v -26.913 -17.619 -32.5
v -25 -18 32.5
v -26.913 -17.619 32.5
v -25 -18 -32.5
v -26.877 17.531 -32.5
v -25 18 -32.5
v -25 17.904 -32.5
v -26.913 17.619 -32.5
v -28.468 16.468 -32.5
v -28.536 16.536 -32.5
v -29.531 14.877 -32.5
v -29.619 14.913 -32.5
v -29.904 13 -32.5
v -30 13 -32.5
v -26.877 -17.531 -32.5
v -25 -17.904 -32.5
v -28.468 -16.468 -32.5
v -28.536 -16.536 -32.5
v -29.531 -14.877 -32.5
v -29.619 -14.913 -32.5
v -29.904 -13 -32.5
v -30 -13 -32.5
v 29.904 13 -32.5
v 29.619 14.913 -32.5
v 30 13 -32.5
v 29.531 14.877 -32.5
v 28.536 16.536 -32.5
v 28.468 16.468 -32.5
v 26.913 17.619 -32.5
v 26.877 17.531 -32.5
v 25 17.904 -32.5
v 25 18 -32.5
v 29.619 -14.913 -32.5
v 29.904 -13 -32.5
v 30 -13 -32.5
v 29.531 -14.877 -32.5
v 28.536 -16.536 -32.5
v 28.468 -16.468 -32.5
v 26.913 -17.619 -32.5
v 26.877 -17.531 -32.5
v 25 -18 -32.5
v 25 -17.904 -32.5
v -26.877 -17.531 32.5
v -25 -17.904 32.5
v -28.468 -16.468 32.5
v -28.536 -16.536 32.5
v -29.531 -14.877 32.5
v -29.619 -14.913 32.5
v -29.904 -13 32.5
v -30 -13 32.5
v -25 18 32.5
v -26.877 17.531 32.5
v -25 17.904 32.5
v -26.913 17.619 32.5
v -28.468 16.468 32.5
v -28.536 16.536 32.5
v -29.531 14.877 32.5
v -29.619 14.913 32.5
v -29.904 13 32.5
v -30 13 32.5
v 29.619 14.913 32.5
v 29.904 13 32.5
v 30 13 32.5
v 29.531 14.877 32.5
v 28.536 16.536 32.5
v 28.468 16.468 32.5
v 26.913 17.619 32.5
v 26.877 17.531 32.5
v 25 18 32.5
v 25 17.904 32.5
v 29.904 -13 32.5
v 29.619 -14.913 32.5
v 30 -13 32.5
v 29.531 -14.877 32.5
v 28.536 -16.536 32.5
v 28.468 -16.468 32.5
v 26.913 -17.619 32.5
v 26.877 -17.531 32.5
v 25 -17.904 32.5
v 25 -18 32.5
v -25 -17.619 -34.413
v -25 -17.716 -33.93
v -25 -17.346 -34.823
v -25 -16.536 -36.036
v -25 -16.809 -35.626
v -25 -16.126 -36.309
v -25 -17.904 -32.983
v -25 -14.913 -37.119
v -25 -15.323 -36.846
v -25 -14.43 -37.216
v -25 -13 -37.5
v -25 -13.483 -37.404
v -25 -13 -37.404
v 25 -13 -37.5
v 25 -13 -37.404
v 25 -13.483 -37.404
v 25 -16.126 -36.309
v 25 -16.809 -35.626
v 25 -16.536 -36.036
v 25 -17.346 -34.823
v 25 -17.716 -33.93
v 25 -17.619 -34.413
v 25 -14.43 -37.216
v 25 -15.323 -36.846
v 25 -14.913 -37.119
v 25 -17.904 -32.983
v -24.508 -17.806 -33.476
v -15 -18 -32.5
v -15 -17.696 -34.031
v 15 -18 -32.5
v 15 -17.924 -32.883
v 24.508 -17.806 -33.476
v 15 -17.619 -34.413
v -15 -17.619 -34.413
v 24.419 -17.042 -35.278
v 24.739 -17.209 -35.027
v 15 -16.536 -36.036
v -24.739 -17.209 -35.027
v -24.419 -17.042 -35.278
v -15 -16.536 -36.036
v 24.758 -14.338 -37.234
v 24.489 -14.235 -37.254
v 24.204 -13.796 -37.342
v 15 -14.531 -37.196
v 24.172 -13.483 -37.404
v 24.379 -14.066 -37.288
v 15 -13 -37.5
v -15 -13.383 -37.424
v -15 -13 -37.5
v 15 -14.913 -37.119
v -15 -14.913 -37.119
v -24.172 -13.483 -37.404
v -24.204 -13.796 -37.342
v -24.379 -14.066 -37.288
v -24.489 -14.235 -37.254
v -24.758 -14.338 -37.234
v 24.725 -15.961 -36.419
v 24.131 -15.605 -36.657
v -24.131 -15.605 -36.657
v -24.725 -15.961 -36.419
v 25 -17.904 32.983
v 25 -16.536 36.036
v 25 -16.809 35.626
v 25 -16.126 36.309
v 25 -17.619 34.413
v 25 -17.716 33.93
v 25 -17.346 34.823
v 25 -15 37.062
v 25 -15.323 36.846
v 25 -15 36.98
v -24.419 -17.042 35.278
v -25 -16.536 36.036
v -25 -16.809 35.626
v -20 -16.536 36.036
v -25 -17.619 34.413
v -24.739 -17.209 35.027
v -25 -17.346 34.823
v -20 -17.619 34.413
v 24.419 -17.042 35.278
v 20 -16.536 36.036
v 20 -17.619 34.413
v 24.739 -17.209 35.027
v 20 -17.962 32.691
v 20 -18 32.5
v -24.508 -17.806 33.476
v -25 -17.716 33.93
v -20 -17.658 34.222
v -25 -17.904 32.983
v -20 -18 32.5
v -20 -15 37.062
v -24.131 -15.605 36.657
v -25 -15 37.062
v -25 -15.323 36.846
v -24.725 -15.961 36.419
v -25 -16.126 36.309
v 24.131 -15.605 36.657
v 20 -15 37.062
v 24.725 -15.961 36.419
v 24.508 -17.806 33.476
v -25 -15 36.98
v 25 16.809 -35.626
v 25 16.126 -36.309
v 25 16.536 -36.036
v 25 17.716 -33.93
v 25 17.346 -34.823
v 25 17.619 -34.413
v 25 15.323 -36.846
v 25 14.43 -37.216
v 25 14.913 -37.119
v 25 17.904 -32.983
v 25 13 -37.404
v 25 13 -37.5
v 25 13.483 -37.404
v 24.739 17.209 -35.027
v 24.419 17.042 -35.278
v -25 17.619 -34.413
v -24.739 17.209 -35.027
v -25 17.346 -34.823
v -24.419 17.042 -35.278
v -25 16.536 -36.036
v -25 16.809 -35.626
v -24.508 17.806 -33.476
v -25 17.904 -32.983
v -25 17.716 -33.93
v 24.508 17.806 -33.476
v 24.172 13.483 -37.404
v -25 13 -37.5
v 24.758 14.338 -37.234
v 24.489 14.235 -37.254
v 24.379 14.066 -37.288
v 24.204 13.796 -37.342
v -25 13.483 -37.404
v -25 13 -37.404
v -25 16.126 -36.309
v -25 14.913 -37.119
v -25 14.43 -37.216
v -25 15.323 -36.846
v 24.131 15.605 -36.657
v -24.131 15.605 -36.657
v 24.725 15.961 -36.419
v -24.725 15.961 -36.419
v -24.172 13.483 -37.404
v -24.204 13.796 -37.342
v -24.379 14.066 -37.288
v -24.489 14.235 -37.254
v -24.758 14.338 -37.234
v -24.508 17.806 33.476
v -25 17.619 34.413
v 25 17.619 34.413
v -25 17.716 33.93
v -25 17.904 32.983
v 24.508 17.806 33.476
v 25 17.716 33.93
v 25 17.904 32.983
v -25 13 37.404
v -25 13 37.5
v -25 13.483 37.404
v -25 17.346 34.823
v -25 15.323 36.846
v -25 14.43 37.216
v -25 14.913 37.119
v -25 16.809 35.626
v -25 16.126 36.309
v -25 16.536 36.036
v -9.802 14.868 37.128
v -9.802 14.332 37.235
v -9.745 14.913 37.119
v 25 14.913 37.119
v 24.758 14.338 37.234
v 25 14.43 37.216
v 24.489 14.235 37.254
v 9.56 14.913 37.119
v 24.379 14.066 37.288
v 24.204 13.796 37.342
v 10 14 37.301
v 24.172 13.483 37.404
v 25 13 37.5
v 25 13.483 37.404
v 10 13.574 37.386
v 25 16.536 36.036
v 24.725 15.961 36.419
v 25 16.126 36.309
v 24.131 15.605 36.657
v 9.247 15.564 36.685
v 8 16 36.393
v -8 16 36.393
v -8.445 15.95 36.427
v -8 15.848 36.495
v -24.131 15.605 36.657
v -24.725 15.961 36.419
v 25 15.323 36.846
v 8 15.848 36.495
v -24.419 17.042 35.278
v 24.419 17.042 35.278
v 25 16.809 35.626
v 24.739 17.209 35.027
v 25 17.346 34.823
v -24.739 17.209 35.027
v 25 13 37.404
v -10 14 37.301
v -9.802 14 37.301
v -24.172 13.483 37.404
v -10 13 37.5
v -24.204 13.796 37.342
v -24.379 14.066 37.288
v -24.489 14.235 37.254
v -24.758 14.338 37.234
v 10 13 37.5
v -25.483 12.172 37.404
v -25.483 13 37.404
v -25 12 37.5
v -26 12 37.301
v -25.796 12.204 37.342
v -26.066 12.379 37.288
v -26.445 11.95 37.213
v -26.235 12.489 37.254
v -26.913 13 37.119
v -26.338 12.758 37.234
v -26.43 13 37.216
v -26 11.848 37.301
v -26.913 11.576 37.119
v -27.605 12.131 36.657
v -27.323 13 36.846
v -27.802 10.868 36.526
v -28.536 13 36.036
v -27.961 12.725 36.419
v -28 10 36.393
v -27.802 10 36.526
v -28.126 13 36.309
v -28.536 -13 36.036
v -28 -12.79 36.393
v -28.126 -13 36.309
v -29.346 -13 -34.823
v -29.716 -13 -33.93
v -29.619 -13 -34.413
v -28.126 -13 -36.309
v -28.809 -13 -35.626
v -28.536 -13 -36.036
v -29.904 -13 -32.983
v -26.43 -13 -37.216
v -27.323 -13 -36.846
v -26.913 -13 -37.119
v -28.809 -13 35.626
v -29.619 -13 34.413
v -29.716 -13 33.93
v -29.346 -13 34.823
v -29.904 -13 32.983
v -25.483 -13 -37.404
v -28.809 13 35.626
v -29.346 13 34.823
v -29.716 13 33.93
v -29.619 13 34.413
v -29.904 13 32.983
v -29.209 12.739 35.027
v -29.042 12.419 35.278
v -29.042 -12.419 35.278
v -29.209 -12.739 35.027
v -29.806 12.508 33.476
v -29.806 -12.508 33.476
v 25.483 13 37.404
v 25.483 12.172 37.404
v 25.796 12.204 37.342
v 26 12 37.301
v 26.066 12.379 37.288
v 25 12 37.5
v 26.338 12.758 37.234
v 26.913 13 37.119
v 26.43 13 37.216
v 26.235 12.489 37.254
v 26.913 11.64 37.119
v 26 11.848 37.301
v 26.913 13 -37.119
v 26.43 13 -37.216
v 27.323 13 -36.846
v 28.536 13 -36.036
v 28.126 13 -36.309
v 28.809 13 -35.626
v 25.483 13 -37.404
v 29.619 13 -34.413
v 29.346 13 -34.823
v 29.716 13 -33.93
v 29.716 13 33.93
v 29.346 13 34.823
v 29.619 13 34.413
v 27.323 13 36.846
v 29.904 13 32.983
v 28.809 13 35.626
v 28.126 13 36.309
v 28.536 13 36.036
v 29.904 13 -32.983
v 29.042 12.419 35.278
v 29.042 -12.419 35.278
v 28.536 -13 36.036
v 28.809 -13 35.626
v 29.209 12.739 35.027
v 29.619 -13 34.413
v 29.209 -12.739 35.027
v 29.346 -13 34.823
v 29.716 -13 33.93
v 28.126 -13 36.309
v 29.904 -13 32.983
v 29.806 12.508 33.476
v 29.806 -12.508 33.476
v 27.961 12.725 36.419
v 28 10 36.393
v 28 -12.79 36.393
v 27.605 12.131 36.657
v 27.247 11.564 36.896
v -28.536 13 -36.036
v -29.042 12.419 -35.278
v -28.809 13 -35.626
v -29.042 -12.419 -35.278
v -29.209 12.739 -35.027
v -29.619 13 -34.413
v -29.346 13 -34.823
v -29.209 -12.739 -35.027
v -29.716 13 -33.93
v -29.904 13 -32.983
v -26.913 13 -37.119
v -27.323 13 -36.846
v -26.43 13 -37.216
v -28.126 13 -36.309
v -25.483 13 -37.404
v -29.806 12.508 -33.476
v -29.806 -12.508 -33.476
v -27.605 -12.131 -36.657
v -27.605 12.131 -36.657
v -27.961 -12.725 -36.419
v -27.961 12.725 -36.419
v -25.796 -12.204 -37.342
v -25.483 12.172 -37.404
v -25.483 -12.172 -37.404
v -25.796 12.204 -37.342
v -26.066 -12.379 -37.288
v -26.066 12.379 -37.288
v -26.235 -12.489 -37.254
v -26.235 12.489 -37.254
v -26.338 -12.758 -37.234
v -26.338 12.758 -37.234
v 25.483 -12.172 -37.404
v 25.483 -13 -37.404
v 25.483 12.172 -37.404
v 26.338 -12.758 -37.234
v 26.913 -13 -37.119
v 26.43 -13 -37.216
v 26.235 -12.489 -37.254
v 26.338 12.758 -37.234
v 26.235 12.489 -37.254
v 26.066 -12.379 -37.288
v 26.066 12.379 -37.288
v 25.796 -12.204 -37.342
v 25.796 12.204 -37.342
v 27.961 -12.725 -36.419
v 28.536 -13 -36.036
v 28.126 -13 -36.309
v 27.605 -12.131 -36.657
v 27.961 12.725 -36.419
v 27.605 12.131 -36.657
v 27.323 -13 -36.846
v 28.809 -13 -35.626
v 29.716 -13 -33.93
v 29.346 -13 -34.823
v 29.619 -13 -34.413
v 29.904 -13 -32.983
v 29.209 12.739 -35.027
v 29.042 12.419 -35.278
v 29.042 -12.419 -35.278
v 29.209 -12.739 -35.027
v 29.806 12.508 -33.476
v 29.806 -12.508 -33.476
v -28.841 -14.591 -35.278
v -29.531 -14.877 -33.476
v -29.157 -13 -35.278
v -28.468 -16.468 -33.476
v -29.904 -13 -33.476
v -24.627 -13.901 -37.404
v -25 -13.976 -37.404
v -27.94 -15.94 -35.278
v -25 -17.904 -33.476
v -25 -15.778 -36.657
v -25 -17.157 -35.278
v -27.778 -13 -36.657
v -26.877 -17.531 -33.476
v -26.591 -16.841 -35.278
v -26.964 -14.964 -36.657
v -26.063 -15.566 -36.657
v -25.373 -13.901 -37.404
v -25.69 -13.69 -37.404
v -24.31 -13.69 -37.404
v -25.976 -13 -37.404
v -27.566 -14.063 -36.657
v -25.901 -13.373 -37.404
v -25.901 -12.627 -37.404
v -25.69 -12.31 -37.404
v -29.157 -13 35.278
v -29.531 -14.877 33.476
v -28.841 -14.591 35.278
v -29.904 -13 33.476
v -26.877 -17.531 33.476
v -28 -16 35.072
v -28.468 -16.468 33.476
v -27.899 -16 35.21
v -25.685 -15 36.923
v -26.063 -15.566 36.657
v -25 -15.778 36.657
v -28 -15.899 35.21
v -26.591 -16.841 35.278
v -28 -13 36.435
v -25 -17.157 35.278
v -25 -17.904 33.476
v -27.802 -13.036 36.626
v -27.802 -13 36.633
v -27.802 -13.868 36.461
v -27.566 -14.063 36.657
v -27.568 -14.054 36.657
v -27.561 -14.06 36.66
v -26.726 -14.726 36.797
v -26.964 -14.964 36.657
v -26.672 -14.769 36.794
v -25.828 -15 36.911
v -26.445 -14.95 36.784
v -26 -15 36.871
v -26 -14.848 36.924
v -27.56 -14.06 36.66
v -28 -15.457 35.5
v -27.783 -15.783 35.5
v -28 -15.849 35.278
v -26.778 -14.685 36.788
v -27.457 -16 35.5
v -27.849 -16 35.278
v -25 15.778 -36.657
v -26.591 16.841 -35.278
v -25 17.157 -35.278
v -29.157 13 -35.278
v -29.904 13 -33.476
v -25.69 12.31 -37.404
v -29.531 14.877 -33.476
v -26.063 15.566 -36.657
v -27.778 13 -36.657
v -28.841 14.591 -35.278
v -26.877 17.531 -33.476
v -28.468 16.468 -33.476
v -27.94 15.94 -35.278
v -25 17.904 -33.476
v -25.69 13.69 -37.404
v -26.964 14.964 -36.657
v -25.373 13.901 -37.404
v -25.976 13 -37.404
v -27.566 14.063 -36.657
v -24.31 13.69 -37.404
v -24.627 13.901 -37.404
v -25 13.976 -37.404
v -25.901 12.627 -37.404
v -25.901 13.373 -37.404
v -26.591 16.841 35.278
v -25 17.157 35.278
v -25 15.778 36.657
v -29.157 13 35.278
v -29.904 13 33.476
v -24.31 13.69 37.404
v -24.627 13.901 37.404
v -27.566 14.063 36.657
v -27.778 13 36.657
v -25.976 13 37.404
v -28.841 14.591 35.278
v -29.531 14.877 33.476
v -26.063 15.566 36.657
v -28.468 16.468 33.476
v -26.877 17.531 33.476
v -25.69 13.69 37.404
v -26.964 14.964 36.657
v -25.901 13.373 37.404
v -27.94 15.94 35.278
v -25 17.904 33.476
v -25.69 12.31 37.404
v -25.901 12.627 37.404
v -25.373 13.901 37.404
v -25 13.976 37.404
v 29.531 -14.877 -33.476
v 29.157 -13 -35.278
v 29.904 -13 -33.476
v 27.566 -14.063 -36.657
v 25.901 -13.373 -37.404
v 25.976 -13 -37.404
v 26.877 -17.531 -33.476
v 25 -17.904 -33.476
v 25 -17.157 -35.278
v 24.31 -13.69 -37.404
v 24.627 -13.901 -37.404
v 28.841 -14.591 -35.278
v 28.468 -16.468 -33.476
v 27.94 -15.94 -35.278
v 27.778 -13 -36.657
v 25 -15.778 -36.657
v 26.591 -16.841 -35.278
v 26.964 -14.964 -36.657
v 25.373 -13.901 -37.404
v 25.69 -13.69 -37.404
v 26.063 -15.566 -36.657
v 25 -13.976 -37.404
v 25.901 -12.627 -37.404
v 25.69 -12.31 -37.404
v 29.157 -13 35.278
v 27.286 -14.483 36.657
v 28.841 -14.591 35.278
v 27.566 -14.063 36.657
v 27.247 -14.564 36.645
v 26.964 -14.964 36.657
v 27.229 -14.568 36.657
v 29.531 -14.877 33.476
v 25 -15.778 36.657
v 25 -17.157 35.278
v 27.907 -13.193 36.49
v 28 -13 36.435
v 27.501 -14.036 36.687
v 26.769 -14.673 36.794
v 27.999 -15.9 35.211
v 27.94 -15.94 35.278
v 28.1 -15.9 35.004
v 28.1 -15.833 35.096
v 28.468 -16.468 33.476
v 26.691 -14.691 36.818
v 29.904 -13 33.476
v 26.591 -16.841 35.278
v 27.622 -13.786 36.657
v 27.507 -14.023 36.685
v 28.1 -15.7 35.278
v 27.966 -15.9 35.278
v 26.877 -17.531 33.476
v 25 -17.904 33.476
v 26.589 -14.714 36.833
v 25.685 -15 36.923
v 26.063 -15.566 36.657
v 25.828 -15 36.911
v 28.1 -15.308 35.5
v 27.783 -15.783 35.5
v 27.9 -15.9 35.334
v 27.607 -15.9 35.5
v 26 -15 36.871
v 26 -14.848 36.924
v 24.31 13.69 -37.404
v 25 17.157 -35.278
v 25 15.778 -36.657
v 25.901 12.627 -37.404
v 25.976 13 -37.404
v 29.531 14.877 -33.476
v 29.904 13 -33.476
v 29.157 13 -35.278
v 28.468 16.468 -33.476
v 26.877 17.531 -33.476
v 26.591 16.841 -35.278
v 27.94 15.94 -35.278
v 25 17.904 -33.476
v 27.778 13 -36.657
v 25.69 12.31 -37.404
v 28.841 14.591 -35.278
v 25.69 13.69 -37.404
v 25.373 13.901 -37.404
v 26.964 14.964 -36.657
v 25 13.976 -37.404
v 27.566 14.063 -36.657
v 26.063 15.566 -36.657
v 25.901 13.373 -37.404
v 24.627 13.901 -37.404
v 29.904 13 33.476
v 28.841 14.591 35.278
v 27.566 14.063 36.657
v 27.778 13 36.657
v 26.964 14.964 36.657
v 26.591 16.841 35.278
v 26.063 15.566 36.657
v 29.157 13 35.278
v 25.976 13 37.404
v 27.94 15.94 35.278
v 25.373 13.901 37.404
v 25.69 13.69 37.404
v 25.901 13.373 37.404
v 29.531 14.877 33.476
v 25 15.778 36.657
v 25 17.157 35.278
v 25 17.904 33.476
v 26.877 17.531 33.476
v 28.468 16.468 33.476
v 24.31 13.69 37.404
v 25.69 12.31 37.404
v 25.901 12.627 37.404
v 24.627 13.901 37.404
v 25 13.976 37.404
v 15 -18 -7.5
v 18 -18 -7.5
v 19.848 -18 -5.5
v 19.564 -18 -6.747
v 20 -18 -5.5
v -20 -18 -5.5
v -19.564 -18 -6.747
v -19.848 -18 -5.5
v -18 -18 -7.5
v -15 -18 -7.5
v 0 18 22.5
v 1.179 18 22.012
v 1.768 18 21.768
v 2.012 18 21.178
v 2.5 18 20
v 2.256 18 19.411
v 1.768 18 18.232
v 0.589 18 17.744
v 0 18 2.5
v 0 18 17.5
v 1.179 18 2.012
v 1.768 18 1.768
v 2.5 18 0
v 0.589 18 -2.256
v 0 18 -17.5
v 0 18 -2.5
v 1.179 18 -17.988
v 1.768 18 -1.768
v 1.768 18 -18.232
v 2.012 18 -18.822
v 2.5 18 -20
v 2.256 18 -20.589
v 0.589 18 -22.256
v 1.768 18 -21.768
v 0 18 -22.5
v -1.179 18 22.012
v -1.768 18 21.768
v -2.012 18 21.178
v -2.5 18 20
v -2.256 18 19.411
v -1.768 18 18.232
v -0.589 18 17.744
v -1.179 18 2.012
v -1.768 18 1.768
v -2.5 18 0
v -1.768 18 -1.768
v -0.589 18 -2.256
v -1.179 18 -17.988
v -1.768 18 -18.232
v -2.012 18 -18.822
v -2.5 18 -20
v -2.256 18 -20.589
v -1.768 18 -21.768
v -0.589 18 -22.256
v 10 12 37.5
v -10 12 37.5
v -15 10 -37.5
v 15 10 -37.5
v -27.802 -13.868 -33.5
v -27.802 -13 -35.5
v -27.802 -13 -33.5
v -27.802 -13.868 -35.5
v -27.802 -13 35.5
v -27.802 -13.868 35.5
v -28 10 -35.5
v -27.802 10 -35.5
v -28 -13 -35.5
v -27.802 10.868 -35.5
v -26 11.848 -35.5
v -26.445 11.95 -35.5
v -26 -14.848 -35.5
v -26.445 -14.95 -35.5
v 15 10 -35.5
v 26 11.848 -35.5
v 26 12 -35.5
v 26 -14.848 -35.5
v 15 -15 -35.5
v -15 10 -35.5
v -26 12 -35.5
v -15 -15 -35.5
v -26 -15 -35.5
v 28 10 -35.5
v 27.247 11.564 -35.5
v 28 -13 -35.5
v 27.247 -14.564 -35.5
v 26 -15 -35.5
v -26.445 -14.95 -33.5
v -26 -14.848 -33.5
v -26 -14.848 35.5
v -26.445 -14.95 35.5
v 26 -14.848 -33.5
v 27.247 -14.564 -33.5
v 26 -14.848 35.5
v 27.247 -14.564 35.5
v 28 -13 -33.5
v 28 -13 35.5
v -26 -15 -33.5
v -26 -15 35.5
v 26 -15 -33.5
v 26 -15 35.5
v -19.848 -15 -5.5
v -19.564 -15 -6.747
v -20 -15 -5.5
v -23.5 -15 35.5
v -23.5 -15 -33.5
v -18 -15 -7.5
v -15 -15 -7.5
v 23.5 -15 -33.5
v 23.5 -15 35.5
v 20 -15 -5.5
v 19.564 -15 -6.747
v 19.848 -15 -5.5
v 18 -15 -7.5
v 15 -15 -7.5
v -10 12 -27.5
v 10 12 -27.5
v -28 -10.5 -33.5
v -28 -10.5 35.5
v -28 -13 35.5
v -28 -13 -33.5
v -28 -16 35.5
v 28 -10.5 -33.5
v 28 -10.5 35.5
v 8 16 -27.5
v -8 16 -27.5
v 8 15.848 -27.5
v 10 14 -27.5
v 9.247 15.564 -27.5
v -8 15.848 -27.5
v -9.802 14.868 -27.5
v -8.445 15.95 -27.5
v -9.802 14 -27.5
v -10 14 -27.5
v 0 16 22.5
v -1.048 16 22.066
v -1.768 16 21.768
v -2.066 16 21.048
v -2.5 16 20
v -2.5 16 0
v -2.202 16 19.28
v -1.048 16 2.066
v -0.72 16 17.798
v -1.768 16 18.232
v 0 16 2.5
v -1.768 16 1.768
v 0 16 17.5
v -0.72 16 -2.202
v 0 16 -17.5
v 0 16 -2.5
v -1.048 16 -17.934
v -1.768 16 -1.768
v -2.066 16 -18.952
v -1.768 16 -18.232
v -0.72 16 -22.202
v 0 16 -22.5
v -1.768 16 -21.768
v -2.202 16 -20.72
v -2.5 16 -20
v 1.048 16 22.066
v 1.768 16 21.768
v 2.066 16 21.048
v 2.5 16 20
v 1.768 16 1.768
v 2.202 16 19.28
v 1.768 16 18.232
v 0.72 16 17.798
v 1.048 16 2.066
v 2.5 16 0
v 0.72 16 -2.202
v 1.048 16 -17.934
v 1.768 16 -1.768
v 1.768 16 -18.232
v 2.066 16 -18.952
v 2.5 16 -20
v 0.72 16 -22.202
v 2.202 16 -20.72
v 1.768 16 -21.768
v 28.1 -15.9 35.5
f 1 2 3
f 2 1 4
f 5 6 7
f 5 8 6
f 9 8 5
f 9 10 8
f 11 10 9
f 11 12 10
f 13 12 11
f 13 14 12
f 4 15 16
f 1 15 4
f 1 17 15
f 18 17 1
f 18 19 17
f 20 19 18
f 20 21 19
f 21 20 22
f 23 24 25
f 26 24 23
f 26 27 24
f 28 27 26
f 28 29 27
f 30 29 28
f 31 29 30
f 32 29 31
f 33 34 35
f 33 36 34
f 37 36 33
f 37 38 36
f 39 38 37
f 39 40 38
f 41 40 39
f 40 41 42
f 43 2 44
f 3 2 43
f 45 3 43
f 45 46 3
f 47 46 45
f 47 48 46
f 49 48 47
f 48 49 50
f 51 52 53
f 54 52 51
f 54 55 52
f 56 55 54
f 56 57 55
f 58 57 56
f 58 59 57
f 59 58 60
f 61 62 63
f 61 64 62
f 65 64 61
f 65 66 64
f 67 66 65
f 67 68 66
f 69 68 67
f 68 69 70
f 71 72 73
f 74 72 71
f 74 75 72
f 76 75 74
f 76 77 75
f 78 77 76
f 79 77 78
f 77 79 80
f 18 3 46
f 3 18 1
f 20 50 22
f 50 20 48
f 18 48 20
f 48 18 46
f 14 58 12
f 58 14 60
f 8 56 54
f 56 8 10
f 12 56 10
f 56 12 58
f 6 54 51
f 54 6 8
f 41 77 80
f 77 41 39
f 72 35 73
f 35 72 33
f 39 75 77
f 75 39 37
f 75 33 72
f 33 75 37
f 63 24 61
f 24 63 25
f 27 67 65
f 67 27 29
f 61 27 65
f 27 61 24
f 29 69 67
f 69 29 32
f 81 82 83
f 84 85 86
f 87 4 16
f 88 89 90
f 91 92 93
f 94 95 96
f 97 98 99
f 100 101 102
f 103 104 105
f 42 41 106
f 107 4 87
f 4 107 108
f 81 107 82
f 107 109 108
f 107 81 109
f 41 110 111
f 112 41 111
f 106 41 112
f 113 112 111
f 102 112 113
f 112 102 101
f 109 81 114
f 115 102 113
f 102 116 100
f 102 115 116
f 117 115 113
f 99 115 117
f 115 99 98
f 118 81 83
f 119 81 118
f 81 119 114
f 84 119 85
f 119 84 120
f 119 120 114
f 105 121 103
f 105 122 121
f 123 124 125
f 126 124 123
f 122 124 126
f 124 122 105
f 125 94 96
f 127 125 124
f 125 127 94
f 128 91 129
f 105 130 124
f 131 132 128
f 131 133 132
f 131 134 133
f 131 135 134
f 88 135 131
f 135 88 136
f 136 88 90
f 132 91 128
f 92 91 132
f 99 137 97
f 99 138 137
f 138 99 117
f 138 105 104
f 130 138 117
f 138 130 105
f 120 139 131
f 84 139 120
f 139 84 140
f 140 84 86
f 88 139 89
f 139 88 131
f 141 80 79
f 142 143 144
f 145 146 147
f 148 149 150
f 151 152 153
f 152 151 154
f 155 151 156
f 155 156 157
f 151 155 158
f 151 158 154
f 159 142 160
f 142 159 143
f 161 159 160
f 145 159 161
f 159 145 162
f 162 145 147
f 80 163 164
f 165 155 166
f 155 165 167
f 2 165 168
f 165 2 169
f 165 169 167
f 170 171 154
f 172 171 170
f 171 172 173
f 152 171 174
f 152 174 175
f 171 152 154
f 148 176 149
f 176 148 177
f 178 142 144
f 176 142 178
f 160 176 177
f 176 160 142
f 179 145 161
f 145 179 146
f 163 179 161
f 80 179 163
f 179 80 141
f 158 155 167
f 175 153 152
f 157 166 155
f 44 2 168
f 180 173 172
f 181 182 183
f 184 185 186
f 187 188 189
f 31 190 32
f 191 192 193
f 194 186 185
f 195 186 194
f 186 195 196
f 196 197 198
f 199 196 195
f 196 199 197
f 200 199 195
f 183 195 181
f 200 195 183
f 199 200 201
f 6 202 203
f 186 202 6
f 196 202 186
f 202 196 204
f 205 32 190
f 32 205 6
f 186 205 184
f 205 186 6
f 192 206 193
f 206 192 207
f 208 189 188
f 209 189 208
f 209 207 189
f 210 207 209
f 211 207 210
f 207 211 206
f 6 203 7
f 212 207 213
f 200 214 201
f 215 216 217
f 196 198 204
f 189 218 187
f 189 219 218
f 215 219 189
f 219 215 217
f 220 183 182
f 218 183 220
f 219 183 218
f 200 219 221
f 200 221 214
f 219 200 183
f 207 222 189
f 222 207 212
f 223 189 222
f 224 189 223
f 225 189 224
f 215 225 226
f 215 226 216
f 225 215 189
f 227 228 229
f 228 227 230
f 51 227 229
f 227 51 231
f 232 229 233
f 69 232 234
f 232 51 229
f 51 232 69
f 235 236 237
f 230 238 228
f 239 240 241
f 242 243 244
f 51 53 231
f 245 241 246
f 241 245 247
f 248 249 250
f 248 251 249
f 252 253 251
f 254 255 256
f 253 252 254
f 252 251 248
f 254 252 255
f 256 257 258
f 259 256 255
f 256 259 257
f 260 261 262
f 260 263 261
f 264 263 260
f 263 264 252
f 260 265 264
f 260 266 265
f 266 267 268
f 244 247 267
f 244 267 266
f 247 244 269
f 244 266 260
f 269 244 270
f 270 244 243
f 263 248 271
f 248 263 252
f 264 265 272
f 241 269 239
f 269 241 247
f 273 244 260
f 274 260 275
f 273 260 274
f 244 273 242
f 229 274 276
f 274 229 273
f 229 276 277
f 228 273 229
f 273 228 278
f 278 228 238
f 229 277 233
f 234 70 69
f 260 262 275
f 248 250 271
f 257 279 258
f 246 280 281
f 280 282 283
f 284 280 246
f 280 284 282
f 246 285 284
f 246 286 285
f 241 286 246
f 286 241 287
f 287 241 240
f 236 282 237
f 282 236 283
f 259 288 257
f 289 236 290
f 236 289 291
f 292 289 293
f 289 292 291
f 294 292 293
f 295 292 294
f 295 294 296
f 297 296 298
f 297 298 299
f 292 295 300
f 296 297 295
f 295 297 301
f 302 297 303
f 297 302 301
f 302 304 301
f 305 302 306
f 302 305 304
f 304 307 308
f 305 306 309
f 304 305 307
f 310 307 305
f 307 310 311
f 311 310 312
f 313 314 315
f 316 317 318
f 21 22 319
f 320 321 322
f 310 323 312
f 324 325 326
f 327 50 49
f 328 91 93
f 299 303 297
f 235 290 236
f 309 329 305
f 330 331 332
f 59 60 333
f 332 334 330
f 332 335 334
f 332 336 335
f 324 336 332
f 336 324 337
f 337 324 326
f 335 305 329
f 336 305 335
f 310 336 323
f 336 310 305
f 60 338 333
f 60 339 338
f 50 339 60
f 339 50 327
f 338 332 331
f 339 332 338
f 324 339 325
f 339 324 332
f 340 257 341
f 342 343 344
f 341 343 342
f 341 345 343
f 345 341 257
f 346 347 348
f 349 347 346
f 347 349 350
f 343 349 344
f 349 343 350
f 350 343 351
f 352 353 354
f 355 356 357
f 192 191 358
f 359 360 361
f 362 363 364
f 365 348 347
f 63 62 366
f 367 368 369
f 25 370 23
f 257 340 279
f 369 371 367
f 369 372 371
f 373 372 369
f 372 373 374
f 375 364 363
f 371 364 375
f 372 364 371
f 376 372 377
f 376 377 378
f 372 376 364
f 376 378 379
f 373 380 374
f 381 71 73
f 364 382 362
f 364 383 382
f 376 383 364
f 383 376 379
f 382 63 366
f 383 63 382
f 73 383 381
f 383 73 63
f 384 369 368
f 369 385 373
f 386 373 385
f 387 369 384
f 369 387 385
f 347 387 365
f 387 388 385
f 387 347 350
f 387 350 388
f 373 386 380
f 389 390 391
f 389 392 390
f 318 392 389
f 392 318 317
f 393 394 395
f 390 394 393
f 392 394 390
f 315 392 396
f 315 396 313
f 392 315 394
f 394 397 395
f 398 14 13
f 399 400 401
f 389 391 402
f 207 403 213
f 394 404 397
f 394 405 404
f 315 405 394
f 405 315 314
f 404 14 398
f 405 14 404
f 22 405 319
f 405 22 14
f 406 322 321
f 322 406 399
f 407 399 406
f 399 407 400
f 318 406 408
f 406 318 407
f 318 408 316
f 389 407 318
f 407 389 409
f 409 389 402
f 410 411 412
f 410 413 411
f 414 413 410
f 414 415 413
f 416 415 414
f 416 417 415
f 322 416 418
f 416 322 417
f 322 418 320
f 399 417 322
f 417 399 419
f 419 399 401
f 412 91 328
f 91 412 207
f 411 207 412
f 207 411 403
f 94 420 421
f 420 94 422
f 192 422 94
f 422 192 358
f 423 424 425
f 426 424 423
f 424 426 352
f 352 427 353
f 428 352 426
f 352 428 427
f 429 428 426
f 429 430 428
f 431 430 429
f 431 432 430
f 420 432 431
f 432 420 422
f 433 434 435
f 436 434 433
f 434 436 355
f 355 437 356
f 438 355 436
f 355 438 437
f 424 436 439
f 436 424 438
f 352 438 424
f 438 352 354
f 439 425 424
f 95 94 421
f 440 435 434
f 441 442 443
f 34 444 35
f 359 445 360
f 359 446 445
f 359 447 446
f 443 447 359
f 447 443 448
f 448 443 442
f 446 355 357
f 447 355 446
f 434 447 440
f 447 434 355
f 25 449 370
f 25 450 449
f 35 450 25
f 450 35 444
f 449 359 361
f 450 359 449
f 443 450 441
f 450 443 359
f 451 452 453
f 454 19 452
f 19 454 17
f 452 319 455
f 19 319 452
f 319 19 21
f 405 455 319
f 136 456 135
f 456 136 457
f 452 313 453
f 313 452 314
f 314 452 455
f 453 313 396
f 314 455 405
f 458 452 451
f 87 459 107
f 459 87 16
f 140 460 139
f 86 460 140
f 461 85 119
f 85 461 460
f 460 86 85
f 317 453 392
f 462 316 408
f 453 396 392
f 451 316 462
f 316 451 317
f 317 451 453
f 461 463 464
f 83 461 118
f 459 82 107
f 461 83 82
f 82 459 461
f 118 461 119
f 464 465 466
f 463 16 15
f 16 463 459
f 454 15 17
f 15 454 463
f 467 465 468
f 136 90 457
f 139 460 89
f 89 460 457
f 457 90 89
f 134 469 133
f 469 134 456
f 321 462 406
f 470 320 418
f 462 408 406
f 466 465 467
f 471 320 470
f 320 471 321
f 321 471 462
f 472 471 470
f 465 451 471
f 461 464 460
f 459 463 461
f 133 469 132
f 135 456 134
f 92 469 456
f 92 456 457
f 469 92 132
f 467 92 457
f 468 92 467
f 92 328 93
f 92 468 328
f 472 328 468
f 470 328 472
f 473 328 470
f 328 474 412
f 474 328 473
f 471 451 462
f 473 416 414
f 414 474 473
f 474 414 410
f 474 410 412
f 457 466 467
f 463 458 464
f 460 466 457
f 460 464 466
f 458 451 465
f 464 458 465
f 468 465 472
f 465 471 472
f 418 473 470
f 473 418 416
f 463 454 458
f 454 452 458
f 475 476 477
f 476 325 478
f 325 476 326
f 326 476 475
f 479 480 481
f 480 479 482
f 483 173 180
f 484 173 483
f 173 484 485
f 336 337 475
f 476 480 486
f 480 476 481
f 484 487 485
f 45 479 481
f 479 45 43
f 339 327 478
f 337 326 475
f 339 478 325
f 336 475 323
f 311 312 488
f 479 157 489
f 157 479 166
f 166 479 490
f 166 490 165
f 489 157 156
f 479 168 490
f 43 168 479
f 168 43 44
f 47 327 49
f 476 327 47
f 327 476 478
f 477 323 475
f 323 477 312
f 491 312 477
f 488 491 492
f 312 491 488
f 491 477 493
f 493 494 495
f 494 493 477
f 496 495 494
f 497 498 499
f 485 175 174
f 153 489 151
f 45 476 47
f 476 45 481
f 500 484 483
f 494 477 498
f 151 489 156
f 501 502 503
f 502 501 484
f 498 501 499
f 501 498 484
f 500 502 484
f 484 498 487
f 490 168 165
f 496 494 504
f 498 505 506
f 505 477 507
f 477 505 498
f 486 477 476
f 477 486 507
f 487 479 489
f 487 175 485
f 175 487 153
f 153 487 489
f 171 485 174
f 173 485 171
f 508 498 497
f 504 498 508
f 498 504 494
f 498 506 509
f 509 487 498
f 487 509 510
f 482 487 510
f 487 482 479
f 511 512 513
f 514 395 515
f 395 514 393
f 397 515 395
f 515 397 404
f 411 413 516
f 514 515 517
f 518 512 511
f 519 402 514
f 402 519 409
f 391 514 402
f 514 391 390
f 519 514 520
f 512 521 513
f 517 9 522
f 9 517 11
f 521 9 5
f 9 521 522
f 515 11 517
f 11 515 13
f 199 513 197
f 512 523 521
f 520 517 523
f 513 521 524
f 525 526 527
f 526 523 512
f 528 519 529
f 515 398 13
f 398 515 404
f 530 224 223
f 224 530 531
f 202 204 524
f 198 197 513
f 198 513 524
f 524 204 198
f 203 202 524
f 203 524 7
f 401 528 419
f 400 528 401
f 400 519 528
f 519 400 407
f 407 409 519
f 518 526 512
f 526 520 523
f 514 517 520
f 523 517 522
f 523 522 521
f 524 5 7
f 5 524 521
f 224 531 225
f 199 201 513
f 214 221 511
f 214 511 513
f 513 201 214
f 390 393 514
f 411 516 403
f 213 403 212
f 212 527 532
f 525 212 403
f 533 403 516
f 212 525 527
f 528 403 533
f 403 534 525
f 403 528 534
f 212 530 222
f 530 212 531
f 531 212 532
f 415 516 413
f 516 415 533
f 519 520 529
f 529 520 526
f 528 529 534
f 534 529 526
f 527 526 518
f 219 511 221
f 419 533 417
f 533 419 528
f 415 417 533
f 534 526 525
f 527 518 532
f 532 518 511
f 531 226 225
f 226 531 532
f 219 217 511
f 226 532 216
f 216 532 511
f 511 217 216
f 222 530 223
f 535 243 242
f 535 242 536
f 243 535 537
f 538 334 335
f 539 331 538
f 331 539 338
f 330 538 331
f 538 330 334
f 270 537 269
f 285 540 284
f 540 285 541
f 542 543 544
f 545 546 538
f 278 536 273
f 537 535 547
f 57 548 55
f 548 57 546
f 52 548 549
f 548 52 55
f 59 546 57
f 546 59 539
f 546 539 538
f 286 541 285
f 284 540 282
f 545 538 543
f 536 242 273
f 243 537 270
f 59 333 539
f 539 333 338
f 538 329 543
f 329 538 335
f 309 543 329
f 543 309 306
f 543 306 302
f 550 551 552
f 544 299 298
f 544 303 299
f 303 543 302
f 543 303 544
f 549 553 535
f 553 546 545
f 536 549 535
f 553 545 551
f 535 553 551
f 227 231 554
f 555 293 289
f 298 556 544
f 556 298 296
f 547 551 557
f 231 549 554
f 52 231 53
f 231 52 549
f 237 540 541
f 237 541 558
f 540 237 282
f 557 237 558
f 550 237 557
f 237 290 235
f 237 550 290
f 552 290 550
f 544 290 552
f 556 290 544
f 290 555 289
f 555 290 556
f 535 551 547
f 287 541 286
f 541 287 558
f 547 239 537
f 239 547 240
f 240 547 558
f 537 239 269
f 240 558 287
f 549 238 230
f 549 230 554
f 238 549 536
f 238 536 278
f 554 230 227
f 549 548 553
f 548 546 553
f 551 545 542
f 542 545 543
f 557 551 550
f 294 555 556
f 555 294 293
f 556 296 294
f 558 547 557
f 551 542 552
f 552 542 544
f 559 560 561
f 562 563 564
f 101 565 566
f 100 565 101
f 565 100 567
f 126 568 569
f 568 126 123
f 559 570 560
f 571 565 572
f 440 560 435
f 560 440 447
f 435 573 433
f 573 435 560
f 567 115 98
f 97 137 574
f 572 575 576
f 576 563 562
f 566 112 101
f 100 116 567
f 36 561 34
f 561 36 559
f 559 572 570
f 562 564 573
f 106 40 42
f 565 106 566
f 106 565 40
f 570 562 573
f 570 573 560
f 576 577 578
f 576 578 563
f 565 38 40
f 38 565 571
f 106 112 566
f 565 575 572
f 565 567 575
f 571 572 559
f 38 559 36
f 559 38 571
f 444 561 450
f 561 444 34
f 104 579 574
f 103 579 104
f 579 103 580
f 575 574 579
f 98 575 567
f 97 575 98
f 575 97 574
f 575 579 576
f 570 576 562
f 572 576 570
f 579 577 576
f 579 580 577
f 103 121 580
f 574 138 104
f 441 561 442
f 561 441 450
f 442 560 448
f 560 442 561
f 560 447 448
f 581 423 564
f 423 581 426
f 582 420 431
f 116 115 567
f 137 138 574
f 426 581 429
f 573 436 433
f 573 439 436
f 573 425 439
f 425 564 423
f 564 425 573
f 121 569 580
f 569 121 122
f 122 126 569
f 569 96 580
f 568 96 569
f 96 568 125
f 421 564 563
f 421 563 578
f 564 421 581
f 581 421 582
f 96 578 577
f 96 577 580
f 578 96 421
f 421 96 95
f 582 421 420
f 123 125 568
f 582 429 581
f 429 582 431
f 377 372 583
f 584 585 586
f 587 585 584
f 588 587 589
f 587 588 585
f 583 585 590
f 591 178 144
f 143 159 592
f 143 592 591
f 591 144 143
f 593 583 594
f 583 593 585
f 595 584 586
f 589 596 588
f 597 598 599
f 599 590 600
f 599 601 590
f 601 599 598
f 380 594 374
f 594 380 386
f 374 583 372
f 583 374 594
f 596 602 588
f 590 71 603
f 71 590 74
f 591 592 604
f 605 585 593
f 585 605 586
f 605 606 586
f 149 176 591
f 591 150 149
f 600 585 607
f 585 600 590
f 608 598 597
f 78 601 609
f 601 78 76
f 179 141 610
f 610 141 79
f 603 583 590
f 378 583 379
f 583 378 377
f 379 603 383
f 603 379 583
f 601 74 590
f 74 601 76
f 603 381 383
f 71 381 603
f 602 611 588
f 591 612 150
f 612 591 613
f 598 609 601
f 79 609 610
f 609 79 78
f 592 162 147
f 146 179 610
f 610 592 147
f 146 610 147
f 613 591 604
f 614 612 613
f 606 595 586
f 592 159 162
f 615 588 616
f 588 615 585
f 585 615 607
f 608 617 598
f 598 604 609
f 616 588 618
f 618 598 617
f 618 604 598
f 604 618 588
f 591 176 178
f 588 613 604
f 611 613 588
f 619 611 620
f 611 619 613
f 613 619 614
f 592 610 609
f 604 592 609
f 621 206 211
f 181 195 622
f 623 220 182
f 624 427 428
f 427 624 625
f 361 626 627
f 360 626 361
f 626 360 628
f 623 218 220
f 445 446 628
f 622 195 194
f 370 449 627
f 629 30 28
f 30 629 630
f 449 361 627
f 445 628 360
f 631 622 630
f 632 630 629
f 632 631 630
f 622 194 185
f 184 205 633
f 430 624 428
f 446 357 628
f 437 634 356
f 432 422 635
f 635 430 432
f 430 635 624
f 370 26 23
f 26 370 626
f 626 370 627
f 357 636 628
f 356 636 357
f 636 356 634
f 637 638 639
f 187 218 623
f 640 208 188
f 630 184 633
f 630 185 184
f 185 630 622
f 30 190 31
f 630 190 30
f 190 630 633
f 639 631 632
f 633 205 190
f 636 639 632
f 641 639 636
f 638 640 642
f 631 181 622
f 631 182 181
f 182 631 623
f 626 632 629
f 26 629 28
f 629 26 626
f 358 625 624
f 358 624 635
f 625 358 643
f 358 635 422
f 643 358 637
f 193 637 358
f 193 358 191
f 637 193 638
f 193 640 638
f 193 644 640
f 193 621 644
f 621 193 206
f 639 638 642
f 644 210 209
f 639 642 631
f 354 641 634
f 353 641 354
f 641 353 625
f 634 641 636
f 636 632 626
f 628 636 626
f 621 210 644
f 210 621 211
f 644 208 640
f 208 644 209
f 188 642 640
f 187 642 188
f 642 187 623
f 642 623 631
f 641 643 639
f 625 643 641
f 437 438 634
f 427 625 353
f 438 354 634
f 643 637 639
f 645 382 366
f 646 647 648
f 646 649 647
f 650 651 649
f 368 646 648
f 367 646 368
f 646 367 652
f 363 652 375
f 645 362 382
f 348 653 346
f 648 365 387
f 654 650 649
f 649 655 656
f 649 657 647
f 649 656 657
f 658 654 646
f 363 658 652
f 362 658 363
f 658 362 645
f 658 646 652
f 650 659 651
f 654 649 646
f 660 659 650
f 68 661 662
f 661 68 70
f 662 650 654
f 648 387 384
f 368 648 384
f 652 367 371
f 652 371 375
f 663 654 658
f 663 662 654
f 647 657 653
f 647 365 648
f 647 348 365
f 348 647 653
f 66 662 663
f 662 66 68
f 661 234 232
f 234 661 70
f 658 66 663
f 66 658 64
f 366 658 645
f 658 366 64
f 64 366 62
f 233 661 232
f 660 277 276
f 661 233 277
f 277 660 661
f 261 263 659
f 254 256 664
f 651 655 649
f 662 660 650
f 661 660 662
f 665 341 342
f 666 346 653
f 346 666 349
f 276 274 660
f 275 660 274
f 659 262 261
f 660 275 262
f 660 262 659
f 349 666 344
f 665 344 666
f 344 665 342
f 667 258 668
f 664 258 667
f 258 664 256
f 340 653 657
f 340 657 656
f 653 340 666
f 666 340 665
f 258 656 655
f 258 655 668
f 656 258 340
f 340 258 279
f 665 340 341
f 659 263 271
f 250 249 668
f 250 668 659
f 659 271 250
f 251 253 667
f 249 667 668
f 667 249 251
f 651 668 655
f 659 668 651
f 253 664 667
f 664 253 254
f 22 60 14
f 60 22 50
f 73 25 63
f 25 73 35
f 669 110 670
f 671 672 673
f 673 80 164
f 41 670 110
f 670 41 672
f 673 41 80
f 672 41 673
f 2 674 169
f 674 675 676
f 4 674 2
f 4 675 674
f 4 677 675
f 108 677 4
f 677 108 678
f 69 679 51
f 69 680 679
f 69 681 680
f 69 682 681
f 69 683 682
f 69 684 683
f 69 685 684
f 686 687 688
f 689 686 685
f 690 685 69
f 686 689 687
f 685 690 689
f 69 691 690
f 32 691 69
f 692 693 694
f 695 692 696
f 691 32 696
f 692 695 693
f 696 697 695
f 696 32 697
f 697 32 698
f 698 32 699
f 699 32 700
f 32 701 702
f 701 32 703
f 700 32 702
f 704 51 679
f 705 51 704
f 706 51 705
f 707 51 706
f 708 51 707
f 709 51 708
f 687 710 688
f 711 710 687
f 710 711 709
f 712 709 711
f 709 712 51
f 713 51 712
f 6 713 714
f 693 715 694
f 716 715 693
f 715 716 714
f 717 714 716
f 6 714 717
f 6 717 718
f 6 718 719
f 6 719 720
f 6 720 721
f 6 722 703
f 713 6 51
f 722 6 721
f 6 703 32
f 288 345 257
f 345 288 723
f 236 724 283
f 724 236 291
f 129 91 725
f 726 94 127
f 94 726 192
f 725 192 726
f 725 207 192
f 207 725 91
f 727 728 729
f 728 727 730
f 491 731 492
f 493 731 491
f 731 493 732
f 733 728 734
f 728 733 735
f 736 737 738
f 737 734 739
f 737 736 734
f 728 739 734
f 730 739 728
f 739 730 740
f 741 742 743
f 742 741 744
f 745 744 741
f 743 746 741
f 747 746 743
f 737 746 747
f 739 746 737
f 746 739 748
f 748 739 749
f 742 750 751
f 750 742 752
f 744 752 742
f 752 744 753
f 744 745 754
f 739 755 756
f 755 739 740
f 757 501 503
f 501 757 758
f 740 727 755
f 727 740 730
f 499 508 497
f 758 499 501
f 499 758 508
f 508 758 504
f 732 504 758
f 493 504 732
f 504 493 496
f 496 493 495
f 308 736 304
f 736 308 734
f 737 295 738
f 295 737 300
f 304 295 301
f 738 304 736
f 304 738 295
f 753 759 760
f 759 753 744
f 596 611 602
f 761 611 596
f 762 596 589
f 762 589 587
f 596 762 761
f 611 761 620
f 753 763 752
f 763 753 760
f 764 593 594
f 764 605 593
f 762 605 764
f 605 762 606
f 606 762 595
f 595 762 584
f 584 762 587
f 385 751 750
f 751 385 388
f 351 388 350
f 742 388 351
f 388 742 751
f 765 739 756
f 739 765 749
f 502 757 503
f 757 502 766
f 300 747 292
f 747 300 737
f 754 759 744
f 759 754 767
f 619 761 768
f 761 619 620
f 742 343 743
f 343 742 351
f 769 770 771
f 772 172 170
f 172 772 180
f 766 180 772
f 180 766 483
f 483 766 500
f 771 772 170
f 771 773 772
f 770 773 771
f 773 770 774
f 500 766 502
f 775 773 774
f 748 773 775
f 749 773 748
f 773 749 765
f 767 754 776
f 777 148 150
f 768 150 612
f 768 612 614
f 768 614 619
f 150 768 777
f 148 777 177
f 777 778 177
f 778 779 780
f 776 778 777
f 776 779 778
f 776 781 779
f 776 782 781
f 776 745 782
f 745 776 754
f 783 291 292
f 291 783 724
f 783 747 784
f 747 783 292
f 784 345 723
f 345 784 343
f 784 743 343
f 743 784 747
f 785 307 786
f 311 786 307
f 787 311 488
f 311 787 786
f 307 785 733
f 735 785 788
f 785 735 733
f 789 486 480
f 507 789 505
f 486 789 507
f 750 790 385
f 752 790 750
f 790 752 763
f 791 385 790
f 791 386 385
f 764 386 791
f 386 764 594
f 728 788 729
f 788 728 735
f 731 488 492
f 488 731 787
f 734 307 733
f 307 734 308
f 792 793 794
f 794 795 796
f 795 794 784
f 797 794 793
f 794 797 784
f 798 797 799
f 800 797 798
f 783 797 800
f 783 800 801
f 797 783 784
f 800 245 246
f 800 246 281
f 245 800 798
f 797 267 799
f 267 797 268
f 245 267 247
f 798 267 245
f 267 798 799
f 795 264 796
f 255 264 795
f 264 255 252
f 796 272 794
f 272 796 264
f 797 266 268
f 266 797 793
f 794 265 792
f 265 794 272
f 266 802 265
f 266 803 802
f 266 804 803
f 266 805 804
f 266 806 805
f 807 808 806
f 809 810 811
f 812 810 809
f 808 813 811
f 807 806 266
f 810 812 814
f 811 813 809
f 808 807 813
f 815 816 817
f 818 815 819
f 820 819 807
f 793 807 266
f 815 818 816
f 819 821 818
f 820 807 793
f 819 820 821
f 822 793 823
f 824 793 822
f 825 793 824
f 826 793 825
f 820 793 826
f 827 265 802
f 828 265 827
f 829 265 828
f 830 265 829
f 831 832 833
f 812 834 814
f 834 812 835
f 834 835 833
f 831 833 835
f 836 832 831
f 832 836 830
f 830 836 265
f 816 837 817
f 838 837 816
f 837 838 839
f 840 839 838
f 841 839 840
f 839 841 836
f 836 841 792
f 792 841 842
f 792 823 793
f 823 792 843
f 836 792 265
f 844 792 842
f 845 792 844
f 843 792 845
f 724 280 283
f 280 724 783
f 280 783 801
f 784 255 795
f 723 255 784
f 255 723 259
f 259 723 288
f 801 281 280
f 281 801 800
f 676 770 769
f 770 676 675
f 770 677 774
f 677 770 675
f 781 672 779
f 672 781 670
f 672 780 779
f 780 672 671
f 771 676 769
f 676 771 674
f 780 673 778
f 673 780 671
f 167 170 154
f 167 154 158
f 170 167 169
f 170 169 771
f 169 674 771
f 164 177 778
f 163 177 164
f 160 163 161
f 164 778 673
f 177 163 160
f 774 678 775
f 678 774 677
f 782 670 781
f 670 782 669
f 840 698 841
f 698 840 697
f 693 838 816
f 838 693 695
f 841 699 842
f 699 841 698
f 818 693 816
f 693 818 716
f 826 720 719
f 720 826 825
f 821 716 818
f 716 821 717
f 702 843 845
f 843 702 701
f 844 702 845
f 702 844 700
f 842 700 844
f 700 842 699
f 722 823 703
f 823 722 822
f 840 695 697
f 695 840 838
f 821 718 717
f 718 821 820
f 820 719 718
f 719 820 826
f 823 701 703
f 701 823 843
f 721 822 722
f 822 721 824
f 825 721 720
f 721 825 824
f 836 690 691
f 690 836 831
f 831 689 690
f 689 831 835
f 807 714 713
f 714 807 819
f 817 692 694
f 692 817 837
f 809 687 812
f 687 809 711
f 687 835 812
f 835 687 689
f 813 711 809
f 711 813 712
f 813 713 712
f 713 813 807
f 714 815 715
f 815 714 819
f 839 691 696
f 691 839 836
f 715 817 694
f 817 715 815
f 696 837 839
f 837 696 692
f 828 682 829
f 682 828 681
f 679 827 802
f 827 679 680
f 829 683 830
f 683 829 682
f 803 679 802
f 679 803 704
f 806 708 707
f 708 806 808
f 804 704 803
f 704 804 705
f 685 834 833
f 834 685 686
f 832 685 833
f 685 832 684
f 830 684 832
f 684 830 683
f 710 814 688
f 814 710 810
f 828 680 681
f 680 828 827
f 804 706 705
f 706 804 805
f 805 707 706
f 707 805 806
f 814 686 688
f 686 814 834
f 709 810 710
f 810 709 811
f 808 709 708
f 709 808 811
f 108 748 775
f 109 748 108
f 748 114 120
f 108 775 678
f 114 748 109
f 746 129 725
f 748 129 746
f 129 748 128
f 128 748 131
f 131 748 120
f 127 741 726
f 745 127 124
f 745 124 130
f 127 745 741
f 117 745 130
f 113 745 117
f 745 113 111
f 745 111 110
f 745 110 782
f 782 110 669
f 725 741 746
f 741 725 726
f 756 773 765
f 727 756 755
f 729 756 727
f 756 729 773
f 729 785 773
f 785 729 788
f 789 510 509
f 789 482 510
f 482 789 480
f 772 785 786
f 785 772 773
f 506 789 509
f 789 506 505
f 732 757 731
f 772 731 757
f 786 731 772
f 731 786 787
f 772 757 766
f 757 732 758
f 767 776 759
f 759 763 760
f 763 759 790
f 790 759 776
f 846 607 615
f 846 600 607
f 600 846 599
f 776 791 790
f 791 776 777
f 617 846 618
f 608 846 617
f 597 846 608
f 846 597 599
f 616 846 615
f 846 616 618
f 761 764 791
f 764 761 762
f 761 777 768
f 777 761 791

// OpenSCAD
//--------------------------------------------------------------------
//	Filename:	RemoteControlHolder.scad
//	Author:		Robert H. Morrison (rhmorrison)
//	Created On:	15 October 2011
//--------------------------------------------------------------------

use <MCAD/boxes.scad>;

AddTriangles=1;	//[0:No,1:Yes]

KT=27;			// Remote Control Thickness
ST=5;			// Screw head Thickness
T=2;			// Thickness of walls
BD=KT+ST+2*T;	// Box Depth
BW=60;			// Box Width
BL=75;			// Box Length
FW=40;			// Front Hole Width

module Triangle(h) {
	linear_extrude(height=h, center=false, convexity=10, twist=0)
		polygon(
			points=[[0,0],[0,5.5],[5.5,5.5]],
			paths=[[0,1,2]]);
}

module BracketHoles() {
	for (i=[-20, 0, 20])
	{
		translate([0,KT/2,i])
			rotate([90,0,0])
				cylinder(h=KT, r=2.5, center=true);
	}
}

module RemoteControlBracket() {
	union() {
		difference() {
			roundedBox([BW,BD,BL], 5, false);			// Holder frame
			translate([0,-(ST-T)/2,T])
				roundedBox([BW-2*T,KT,BL], 2, true);	// Remote Control
			translate([0,ST/2,10])
				roundedBox([BW/3,KT,BL], 2, true);  	// Screw heads
			translate([0,-(KT+ST+T)/2,30])
				rotate([90,90,0])
					roundedBox([BL,FW,ST], 2, true);  // Cut-out FRONT

            translate([-15, -40, -75])                     // Cut-out cable
                cube([30, 50, 150]);
			BracketHoles();
        }

		if (AddTriangles)
		{
			translate([T+5.5-BW/2,T-BD/2,2*T-BL/2])
				rotate([0,0,90])
					Triangle(BL-T*3);						// LL corner
			translate([BW/2-T+0.1,T+5.6-BD/2,2*T-BL/2])
				rotate([0,0,180])
					Triangle(BL-T*3);						// LR corner
			//translate([T/2-BW/2, 5.5+T-BD/2, 6-T-BL/2])
				//rotate([0,90,0])
					//rotate([0,0,180])
						//Triangle(BW-T);					// Bottom
		}
	}
}

RemoteControlBracket();
